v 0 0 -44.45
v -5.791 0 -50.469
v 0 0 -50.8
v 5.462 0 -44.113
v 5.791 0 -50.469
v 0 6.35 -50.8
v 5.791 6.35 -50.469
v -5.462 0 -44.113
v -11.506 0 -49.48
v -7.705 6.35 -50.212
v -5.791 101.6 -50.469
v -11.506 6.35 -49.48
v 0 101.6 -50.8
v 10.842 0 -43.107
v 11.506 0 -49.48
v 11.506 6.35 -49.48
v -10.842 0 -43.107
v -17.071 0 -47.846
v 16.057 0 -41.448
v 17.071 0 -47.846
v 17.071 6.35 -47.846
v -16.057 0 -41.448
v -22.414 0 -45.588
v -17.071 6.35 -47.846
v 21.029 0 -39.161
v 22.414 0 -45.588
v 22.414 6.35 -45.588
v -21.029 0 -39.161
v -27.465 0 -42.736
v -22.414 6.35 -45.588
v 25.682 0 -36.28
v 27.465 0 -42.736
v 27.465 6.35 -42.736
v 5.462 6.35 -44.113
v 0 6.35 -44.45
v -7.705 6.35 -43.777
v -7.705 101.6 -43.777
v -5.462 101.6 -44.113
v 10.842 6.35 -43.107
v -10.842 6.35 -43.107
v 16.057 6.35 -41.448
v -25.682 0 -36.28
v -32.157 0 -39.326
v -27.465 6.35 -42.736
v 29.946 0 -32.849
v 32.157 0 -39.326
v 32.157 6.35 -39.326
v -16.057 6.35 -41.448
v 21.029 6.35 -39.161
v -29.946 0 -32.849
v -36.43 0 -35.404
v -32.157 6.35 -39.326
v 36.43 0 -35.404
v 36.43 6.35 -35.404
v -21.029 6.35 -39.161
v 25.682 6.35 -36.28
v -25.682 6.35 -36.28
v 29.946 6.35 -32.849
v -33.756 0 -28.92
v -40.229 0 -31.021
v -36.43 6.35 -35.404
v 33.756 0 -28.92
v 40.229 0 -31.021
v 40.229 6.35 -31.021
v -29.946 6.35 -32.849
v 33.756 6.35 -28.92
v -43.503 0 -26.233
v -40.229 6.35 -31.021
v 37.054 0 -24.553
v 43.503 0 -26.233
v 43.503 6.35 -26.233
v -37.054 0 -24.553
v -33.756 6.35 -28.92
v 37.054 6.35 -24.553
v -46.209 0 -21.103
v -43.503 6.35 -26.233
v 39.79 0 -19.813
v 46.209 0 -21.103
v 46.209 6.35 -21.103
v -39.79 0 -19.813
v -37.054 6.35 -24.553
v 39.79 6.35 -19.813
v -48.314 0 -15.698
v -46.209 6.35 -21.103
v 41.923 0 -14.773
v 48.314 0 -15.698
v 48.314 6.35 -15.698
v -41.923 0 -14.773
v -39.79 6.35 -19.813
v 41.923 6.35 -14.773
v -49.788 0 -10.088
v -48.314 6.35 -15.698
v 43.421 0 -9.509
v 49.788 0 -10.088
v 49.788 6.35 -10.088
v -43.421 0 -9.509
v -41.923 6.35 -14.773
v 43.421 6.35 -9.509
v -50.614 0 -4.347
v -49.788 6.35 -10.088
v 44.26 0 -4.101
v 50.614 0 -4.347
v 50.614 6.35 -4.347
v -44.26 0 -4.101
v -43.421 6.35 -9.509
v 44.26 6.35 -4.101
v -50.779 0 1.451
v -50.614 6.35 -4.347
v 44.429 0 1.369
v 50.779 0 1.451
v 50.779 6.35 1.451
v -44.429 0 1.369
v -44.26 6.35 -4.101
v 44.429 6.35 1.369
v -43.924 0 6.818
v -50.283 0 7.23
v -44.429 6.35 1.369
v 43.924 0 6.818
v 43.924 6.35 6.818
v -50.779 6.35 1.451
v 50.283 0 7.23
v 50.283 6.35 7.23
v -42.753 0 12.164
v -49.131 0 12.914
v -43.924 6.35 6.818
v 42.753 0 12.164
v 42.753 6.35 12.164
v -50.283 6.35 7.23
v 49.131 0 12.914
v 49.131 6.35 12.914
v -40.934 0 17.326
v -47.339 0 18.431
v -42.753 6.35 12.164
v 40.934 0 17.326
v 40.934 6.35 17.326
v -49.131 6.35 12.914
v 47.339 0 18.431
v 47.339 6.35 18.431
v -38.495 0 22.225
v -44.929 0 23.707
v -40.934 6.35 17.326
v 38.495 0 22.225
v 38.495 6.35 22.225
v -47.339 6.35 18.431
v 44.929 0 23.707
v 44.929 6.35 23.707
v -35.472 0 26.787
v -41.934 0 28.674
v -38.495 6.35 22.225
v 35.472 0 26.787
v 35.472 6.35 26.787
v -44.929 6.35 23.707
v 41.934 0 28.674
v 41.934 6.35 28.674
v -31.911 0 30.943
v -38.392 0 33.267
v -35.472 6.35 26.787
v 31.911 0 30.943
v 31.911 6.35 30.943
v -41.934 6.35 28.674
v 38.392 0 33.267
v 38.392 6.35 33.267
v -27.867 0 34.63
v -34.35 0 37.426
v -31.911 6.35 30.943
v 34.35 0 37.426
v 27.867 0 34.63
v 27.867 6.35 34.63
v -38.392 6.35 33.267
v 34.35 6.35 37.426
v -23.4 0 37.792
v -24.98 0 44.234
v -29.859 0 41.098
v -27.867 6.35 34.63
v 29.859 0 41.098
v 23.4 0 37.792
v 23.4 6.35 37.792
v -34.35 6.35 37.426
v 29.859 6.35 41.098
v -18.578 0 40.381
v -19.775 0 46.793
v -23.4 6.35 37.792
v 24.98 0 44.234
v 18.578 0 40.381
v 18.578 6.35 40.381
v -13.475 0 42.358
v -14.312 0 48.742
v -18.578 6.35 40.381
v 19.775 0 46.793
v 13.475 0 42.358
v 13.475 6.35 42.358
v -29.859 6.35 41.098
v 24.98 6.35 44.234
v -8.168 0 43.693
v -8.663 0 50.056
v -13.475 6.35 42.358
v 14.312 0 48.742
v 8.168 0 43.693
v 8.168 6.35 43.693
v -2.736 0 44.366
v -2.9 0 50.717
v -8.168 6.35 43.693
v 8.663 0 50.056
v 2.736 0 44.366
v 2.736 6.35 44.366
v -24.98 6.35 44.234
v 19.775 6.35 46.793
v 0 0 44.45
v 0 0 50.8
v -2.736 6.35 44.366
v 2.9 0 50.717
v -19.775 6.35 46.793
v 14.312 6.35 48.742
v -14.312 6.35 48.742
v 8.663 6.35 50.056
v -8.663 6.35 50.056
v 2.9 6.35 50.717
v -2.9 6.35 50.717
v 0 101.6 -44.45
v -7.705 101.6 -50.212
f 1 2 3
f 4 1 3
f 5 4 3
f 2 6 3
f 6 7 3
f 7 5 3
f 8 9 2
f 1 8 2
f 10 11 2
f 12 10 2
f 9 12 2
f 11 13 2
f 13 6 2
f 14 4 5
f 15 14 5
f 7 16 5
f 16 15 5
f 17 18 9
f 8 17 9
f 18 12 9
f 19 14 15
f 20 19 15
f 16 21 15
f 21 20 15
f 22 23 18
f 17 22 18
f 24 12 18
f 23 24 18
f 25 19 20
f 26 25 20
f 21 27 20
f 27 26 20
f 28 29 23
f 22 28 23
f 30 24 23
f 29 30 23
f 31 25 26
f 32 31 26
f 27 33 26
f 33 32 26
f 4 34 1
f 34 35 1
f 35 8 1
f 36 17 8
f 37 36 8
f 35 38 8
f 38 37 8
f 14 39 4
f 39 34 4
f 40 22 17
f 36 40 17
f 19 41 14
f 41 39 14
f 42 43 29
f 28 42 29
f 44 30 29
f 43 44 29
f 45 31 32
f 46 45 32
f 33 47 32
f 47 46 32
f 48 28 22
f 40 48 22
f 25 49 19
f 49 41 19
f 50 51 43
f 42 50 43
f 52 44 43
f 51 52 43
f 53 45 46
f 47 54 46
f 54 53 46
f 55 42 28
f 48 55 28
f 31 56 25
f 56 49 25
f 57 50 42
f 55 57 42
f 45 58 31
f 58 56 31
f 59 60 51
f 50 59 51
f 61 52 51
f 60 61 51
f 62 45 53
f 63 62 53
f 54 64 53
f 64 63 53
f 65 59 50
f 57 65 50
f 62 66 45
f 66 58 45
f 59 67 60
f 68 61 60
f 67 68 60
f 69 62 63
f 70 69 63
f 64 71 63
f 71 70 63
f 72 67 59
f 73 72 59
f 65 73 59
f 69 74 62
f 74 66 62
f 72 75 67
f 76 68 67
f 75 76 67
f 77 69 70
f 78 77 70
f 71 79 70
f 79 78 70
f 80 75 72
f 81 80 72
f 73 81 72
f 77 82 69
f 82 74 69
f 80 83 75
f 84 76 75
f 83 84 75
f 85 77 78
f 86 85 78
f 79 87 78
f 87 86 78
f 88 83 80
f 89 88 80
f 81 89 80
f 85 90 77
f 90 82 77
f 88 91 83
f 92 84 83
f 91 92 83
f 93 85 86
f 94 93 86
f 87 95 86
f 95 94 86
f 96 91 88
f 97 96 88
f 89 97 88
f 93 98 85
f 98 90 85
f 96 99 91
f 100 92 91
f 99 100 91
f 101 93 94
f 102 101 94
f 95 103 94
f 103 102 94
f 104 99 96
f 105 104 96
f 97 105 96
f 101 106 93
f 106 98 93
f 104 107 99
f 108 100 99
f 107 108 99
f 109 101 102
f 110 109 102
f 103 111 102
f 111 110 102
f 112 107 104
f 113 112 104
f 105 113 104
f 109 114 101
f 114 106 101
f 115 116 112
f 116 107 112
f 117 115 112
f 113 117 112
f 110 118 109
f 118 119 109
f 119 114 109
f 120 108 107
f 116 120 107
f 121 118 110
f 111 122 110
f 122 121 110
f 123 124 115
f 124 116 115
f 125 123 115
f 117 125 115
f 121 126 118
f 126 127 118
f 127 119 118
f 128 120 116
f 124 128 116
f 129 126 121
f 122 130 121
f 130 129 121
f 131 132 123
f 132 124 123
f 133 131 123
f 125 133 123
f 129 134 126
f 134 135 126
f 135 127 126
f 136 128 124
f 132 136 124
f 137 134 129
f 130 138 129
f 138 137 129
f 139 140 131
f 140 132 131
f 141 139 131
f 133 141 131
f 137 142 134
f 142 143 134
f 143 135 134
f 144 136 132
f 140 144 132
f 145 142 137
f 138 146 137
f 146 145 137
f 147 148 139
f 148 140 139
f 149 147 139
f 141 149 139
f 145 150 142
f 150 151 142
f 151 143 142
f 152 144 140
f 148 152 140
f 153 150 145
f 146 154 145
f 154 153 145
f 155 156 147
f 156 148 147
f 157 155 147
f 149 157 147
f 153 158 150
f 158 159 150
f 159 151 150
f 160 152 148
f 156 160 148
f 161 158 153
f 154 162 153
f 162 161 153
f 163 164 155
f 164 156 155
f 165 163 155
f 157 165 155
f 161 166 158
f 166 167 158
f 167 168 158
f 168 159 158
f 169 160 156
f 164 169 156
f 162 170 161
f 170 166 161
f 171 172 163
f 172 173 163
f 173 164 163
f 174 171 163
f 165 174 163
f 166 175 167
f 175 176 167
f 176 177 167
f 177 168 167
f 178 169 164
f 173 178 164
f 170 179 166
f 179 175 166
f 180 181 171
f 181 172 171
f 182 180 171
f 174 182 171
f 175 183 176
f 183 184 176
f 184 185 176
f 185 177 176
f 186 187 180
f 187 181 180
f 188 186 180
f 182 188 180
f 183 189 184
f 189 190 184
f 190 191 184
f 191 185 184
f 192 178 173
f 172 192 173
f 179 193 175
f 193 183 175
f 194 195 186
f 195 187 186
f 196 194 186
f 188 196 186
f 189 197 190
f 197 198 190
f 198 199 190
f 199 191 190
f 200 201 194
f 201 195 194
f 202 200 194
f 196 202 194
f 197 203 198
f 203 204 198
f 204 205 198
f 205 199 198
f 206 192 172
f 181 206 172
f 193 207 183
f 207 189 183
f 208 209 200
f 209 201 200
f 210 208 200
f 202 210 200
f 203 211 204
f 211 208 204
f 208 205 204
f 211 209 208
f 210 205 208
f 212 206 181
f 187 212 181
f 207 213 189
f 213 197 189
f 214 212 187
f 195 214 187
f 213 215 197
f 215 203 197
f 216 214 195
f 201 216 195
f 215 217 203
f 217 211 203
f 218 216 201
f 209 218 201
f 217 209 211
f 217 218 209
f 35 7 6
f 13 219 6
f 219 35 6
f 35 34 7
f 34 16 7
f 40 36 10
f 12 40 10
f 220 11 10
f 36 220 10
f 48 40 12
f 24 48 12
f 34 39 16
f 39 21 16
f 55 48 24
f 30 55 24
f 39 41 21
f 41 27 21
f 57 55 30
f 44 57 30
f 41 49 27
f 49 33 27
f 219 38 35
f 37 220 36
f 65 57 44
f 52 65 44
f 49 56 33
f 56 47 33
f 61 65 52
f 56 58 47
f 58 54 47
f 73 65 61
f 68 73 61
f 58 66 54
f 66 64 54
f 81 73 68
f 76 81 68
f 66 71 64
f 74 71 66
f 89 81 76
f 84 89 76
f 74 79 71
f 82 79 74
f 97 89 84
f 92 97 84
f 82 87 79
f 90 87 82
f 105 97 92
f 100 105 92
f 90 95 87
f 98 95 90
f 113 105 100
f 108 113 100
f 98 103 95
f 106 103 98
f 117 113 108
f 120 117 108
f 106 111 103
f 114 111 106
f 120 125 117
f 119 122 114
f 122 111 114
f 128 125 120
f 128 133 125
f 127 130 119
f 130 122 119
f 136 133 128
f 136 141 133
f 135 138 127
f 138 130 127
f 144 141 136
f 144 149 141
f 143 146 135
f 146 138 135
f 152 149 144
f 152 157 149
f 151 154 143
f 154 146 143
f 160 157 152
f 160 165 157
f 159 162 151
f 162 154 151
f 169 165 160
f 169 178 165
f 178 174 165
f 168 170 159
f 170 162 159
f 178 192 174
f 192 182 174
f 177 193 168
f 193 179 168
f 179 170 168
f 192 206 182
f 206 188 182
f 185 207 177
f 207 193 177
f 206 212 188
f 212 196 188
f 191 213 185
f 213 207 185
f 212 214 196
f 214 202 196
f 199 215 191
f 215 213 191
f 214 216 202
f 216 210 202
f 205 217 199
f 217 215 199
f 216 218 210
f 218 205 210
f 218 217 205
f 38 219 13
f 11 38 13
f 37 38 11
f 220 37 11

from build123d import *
from build123d.topology import SkipClean

# Parameters (mm, degrees)
SKETCH1_R           = 50.8
SKETCH1_R_2         = 44.45
BOSS_EXTRUDE1_DEPTH = 6.35
BOSS_EXTRUDE2_DEPTH = 95.25


with BuildPart() as part:
    # Sketch1 → Boss-Extrude1 (new body)
    with BuildSketch(Plane(origin=(0, 0, 0), x_dir=(1, 0, 0), z_dir=(0, 1, 0))):
        with Locations(Location((0, 0, 0), (0, 0, 270))):
            Circle(SKETCH1_R)
        with Locations(Location((0, 0, 0), (0, 0, 270))):
            Circle(SKETCH1_R_2, mode=Mode.SUBTRACT)
    extrude(amount=BOSS_EXTRUDE1_DEPTH)

    # Sketch2 → Boss-Extrude2 (add)
    with SkipClean():  # the faces are left unmerged after this step: merging them gives an invalid solid
        with BuildSketch(Plane(origin=(0, 6.35, 0), x_dir=(1, 0, 0), z_dir=(0, 1, 0))):
            with BuildLine():
                ThreePointArc((0, 50.8), (-3.863527606, 50.652869163), (-7.704675524, 50.212328915))
                Line((-7.704675524, 50.212328915), (-7.704675524, 43.777168422))
                ThreePointArc((-7.704675524, 43.777168422), (-3.866999071, 44.281472629), (0, 44.45))
                Line((0, 44.45), (0, 50.8))
            make_face()
        extrude(amount=BOSS_EXTRUDE2_DEPTH)


solid = part.part
